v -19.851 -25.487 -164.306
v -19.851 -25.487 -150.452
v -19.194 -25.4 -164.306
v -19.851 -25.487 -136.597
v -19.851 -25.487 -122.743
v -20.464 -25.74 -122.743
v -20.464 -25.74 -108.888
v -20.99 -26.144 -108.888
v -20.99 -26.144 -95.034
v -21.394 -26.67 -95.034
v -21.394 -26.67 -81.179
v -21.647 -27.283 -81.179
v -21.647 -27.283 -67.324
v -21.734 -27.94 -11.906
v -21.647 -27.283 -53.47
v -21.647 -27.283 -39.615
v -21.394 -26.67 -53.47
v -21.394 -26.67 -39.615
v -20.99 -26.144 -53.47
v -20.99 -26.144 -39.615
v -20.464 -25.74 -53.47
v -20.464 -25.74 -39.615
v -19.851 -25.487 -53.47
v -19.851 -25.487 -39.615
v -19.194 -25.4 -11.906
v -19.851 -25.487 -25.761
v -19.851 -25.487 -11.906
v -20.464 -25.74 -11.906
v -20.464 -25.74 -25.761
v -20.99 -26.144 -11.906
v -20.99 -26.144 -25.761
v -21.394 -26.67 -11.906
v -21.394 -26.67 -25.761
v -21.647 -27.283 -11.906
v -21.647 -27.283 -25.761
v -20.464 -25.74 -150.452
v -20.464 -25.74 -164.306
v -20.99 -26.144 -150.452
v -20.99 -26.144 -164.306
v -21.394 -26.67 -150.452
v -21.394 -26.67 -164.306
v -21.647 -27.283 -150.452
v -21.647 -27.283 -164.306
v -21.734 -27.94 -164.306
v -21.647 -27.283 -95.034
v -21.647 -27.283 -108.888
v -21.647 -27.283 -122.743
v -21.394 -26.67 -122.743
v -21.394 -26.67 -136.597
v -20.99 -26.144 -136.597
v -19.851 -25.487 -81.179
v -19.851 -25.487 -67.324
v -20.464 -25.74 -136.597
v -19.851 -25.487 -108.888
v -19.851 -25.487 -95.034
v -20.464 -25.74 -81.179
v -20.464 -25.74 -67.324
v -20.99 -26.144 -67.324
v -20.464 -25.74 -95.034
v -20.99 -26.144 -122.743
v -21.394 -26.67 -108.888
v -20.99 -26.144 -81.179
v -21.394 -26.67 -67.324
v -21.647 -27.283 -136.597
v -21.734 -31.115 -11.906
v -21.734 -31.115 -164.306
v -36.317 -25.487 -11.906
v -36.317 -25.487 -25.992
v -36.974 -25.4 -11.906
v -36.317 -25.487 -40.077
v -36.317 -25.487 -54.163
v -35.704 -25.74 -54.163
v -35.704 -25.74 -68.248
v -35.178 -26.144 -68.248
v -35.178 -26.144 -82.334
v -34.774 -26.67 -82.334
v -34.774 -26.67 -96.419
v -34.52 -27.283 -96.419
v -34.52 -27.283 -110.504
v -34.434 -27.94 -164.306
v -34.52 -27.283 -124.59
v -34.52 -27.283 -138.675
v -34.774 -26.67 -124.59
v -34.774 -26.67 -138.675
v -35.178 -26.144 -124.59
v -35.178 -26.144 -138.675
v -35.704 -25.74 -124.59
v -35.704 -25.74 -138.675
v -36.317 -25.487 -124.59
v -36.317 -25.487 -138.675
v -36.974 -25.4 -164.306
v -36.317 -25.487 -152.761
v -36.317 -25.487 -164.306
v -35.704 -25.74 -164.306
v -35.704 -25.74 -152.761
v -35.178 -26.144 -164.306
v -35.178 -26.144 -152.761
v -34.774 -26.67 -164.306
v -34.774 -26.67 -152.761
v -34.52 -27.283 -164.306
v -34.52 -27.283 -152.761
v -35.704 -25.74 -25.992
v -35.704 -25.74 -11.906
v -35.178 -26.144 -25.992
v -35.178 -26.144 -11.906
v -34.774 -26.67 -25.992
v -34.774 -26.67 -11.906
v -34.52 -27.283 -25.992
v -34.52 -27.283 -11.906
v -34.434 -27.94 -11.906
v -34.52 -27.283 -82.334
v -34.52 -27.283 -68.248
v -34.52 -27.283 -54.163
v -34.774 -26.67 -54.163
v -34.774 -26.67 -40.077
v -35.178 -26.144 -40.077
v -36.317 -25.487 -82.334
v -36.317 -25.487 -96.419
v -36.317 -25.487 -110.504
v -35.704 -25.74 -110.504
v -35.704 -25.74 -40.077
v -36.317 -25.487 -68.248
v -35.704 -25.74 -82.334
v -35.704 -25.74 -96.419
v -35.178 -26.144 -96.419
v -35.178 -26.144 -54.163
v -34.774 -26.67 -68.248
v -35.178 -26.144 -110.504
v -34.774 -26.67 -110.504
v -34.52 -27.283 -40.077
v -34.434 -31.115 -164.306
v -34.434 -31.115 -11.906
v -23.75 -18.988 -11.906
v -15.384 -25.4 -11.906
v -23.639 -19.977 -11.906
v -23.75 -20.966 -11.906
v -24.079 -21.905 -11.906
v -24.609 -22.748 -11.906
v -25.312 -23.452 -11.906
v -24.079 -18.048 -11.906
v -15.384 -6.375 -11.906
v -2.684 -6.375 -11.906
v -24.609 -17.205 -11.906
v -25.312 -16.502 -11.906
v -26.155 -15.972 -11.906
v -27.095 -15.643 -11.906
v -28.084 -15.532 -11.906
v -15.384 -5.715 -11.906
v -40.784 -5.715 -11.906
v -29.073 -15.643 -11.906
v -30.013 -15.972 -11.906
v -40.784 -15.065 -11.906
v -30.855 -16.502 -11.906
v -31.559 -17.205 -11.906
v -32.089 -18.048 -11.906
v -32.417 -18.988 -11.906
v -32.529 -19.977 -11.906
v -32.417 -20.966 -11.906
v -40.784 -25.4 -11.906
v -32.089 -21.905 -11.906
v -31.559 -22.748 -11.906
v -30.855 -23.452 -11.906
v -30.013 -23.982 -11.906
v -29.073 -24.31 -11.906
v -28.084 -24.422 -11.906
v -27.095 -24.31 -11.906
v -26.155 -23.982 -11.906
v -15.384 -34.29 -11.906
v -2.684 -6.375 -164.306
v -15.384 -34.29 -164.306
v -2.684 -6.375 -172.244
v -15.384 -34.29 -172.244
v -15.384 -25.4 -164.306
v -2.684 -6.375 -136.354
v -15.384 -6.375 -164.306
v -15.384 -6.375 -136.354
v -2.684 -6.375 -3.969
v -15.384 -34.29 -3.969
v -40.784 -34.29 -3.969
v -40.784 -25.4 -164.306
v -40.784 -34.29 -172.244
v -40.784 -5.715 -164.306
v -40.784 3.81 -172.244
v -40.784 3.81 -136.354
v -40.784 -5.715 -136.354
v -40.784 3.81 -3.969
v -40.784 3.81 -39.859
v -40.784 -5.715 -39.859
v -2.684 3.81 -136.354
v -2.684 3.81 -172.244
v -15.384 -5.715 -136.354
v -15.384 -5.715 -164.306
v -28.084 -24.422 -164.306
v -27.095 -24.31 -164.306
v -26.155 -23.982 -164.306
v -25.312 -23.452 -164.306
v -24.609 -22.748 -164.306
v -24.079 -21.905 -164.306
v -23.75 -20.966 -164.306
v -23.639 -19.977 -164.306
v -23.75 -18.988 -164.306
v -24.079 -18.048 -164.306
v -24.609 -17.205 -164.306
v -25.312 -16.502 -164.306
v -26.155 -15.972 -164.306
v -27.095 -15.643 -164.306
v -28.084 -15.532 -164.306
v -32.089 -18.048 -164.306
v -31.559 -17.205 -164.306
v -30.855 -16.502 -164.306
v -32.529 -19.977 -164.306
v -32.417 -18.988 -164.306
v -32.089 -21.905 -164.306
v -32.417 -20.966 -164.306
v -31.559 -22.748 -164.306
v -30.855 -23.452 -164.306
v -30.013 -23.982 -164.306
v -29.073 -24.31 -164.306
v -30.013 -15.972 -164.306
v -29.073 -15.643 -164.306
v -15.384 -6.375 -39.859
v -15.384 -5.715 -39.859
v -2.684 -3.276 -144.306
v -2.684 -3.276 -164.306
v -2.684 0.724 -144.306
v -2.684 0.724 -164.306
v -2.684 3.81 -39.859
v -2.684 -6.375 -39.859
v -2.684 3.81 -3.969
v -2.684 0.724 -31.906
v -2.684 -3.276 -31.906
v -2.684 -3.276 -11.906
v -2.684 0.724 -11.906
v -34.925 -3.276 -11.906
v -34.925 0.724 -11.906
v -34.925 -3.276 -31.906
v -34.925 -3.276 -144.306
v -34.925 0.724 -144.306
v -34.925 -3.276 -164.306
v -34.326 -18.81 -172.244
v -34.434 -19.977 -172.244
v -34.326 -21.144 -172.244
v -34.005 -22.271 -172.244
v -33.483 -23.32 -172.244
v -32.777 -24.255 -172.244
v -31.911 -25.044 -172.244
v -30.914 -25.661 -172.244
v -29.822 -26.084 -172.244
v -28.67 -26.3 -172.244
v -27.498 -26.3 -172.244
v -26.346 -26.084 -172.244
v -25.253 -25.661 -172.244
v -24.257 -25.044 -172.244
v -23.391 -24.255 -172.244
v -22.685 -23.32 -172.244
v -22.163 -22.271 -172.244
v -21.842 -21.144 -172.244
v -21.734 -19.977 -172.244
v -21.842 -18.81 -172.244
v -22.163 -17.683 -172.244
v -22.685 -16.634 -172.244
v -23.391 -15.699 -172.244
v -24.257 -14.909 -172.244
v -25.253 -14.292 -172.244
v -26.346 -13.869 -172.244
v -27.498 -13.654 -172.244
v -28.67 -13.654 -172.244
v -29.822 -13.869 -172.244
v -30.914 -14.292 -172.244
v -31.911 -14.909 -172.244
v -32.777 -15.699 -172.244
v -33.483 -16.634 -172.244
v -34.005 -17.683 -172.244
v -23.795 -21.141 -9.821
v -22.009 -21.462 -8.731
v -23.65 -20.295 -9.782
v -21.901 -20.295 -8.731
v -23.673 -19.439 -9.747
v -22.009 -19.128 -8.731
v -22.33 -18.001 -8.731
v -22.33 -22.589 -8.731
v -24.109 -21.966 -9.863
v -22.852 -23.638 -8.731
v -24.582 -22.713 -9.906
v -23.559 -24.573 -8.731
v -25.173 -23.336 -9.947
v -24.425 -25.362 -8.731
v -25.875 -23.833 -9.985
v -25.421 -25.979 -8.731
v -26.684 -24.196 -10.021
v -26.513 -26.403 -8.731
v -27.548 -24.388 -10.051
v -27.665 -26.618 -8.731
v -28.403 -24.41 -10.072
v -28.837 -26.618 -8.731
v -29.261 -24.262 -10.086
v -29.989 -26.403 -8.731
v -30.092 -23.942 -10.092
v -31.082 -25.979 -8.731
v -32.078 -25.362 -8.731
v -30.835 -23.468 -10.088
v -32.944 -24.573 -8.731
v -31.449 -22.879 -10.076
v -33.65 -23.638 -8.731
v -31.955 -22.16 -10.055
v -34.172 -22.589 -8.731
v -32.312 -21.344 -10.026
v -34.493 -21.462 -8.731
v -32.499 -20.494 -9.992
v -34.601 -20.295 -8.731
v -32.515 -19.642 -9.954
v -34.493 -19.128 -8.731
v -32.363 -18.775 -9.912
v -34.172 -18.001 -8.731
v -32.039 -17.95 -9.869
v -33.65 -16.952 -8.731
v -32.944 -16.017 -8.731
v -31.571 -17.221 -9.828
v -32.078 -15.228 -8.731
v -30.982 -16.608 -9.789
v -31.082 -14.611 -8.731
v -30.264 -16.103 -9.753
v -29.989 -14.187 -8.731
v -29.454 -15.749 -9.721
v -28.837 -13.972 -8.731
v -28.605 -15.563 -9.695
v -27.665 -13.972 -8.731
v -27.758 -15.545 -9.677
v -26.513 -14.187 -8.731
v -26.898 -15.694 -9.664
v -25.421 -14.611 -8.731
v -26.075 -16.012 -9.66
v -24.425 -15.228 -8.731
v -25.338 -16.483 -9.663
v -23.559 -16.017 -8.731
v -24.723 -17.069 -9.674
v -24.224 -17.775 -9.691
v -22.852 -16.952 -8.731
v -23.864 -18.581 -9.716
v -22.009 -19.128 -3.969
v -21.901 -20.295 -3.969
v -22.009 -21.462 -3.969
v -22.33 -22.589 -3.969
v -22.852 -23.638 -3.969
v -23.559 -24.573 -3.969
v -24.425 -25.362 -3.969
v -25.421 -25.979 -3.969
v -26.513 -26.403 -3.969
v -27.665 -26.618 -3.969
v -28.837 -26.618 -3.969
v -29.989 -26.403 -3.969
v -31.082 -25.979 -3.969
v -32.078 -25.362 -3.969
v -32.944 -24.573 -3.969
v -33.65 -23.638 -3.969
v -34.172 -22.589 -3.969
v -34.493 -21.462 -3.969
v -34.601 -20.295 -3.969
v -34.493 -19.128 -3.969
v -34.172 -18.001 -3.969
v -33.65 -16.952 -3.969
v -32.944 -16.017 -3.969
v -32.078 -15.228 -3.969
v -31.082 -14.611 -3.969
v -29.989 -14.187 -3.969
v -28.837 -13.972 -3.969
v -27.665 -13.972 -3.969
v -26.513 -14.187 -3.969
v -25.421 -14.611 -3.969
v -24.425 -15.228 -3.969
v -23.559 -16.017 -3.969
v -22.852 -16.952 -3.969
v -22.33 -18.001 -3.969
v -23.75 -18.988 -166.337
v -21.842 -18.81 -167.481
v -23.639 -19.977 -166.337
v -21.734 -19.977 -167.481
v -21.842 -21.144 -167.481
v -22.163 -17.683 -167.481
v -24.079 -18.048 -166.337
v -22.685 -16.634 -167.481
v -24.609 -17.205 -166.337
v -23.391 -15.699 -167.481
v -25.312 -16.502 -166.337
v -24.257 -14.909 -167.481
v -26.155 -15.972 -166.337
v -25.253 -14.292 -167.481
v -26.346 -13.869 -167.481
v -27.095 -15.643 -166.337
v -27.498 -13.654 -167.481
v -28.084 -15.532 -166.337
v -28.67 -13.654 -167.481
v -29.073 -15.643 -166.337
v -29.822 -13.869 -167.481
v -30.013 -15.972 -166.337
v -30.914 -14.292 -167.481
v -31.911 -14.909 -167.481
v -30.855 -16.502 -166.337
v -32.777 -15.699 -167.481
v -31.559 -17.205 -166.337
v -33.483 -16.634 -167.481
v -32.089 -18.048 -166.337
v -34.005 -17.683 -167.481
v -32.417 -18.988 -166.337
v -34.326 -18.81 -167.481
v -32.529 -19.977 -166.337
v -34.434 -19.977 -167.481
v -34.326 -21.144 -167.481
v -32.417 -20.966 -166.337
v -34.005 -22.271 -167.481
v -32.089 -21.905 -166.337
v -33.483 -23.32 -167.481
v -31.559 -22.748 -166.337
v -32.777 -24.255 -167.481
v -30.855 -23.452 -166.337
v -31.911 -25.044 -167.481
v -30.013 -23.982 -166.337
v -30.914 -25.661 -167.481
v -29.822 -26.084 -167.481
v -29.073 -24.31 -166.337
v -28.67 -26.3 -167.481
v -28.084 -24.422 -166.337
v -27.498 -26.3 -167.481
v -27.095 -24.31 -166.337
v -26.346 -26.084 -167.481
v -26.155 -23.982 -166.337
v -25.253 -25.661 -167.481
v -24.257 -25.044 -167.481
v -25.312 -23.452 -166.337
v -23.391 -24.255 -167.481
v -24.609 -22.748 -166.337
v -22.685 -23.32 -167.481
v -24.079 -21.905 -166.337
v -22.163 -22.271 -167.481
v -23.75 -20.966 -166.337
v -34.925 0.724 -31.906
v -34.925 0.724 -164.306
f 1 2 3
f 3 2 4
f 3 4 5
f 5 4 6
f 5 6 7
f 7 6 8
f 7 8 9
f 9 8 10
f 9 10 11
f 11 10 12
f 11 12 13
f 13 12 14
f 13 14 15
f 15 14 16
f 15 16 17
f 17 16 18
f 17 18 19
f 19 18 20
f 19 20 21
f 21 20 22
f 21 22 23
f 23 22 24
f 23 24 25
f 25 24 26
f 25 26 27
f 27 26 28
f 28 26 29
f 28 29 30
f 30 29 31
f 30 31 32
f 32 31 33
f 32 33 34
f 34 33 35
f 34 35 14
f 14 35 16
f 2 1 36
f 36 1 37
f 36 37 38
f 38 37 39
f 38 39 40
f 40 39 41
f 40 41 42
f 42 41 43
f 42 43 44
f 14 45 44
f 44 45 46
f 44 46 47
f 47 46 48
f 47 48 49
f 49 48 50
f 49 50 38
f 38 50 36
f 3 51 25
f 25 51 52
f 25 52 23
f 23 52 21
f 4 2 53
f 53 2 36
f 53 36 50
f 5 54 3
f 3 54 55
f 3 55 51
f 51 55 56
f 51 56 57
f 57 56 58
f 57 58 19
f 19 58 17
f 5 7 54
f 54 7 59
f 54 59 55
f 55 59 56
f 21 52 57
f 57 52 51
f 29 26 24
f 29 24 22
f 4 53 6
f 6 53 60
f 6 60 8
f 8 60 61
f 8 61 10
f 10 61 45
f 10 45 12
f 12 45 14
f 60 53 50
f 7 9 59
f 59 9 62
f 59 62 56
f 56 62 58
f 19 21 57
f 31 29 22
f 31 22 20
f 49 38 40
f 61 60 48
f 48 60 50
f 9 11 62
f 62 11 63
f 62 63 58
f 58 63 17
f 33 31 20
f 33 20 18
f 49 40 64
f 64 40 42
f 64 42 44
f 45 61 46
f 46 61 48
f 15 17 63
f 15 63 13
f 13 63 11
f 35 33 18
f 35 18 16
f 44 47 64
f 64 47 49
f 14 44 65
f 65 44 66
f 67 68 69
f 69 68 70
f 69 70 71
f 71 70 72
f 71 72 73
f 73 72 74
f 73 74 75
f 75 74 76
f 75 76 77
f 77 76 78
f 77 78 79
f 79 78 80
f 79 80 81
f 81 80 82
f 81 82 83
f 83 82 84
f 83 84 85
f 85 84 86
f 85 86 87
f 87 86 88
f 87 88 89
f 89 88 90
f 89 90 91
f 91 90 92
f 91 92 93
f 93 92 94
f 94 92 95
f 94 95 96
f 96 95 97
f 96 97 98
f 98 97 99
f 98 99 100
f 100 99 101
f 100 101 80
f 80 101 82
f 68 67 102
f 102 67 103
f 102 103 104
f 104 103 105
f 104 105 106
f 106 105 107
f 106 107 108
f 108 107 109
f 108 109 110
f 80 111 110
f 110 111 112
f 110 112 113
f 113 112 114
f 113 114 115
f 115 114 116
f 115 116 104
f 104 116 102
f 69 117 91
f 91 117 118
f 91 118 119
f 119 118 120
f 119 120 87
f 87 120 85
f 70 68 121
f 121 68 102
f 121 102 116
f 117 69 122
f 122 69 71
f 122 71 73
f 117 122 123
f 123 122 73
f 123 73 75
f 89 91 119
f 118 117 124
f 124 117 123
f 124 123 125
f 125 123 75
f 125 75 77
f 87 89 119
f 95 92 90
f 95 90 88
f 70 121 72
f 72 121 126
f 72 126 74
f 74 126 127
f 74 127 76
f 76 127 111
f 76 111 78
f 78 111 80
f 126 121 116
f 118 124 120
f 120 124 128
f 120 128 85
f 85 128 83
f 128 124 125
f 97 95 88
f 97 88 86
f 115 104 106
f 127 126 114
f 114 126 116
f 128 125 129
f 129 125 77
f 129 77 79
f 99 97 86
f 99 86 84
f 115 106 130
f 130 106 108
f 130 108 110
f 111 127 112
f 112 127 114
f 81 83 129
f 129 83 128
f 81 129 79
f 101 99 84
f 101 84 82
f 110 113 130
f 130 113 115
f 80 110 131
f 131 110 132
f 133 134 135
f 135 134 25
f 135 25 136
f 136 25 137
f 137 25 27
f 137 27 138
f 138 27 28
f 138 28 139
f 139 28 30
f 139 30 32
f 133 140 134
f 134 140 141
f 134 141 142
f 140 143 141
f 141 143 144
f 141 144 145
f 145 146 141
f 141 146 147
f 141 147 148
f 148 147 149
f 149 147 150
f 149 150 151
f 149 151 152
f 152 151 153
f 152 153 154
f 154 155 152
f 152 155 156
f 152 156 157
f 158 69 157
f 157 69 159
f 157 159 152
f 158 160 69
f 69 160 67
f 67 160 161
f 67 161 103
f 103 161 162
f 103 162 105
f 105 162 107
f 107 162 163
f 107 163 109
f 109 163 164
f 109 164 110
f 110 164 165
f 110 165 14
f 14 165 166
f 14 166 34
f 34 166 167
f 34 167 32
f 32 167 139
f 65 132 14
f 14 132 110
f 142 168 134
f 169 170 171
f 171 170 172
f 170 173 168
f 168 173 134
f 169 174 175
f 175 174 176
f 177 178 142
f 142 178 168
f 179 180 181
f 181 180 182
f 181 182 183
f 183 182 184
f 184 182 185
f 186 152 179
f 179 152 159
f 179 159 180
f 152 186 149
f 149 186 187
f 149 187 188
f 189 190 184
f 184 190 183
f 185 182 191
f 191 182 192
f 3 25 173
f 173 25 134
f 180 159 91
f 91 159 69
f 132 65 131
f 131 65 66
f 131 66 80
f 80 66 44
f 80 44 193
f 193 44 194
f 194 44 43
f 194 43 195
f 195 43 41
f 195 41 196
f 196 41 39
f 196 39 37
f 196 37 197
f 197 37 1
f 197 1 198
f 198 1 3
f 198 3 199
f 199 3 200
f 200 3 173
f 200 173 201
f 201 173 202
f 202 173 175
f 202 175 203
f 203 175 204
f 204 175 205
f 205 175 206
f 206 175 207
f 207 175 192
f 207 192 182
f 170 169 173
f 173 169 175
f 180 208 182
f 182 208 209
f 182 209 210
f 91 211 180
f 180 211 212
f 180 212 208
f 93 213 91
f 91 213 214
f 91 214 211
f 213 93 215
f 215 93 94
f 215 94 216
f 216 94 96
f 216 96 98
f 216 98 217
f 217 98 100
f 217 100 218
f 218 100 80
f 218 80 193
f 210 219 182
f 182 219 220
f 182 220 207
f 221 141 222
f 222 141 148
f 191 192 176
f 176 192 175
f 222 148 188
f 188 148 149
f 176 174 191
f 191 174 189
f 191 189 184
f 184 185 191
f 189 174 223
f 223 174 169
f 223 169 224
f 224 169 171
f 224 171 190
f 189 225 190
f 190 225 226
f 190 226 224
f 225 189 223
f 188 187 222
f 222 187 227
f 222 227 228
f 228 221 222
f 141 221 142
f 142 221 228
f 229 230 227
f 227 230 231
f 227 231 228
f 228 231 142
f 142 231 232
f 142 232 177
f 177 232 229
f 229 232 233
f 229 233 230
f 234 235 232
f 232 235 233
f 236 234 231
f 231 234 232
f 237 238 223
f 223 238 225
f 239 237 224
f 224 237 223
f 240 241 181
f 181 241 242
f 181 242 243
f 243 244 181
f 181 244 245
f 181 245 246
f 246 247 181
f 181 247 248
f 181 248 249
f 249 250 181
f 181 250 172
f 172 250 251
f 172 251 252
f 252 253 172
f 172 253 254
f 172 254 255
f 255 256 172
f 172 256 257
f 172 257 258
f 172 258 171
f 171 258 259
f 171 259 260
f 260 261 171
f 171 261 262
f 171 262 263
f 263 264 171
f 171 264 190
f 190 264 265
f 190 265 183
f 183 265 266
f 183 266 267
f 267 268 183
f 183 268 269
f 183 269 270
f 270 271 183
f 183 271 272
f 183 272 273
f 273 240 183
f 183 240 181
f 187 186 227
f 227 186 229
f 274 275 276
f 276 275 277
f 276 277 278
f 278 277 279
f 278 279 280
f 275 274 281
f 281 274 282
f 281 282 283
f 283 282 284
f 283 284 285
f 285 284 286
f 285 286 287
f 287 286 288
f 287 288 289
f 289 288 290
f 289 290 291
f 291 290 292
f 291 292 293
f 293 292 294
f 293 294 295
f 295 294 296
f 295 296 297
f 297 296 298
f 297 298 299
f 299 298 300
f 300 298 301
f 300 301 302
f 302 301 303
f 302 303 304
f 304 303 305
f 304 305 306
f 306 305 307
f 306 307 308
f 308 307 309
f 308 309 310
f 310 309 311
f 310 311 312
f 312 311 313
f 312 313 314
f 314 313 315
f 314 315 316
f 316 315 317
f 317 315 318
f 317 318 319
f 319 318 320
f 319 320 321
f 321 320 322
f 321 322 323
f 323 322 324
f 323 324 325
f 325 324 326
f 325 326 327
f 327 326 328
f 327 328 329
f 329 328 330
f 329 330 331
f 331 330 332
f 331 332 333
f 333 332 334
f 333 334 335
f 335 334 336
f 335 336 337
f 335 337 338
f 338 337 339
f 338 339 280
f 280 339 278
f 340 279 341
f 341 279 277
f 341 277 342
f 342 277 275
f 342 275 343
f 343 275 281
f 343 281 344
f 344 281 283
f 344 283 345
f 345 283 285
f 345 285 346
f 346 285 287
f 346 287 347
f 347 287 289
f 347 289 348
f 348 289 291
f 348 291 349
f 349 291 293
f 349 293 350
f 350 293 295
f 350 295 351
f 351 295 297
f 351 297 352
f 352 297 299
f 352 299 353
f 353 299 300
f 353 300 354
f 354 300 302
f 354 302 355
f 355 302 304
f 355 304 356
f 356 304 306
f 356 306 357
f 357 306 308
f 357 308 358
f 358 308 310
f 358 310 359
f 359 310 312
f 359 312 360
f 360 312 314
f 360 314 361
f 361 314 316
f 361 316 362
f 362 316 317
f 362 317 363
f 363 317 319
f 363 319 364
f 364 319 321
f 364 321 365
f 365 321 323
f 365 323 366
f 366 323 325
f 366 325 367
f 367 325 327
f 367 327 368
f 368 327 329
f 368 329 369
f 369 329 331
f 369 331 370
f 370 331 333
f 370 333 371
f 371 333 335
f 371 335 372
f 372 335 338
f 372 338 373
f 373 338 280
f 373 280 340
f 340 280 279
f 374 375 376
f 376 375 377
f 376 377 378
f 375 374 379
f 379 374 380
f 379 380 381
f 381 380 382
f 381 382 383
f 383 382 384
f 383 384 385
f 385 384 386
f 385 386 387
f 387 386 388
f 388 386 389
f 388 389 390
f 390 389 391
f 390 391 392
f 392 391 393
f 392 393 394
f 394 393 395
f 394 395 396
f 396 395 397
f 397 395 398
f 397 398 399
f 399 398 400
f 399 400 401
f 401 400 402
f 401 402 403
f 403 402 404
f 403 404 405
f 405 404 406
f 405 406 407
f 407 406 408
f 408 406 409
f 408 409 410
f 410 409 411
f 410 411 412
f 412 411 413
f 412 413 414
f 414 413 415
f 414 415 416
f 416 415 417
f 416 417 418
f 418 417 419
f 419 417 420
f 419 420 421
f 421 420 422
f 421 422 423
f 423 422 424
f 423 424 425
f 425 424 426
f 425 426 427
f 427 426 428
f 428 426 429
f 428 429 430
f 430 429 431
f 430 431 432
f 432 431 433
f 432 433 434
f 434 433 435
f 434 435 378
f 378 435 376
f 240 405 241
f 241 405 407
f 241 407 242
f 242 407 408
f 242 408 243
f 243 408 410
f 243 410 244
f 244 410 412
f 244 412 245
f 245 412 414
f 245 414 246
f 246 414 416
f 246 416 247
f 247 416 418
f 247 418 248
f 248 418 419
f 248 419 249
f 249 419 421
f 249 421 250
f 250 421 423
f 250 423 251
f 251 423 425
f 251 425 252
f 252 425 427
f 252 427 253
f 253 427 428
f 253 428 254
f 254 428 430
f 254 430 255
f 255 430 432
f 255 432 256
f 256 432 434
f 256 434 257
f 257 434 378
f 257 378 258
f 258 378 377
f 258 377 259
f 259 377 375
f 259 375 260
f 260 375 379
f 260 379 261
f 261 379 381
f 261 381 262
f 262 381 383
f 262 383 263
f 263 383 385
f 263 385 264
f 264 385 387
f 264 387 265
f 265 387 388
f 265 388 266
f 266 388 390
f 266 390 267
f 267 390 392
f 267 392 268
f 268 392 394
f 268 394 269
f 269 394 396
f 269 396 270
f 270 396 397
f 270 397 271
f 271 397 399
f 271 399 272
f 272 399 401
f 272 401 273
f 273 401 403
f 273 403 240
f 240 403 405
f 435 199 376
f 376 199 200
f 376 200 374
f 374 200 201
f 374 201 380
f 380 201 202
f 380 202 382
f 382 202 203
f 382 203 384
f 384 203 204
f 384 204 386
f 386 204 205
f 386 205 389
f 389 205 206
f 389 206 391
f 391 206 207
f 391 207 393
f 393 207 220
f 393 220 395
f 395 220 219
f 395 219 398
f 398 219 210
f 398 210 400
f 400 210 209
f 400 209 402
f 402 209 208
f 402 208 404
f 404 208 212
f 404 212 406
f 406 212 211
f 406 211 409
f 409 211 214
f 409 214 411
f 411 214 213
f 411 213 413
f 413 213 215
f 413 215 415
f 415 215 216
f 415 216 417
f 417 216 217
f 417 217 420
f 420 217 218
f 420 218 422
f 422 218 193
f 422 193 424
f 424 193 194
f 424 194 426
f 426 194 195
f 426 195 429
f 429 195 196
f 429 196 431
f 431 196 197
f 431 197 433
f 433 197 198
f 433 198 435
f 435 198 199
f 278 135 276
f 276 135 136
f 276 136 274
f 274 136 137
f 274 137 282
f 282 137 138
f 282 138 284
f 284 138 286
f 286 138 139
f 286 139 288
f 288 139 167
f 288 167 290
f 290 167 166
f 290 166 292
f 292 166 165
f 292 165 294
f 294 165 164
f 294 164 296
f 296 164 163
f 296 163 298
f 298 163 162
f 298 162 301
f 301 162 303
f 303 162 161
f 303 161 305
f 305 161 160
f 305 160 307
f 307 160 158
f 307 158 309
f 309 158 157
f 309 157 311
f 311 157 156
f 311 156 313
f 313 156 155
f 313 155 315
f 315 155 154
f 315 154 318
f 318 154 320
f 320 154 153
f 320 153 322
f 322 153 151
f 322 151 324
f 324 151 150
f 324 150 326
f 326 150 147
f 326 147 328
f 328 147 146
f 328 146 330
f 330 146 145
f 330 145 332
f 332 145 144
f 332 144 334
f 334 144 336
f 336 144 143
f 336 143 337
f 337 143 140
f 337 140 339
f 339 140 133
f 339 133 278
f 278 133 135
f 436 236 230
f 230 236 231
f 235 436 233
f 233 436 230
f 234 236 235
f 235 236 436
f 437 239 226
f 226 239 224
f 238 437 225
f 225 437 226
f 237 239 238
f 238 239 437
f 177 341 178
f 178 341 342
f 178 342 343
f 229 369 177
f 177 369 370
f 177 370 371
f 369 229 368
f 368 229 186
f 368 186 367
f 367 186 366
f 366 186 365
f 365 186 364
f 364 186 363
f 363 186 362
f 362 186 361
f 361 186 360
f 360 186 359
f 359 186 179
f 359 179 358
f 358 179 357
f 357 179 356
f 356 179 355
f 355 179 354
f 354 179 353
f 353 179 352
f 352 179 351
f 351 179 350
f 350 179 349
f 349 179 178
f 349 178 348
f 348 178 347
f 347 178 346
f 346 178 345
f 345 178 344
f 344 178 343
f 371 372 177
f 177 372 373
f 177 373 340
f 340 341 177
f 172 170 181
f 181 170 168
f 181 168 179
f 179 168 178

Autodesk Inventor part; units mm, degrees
ref_plane "YZ Plane" through (0, 0, 0) normal (1, 0, 0) x (0, 1, 0)
ref_plane "XZ Plane" through (0, 0, 0) normal (0, 1, 0) x (-1, 0, 0)
ref_plane "XY Plane" through (0, 0, 0) normal (0, 0, 1) x (1, 0, 0)
sketch "Sketch1" plane through (0, 0, 0) normal (0, 1, 0) x (-1, 0, 0)
  line L0 (41.275, -164.3062) -> (9.525, -164.3062)
  line L1 (9.525, -164.3062) -> (9.525, -11.9062)
  line L2 (9.525, -11.9062) -> (41.275, -11.9062)
  line L3 (41.275, -11.9062) -> (41.275, -164.3062)
  line L4 (41.275, -164.3062) -> (9.525, -164.3062)
  line L5 (9.525, -164.3062) -> (9.525, -146.7428)
  line L6 (9.525, -146.7428) -> (41.275, -146.7428)
  line L7 (41.275, -146.7428) -> (41.275, -164.3062)
  point P0 (0, 0)
  dimension "d37" = 31.75
  dimension "d50" = 152.4
sketch "Sketch2" plane through (0, 0, 0) normal (1, 0, 0) x (0, 1, 0)
  point P0 (0, 0)
extrude "Extrusion1" add sketch "Sketch1" along normal mid plane 7.62
sketch "Sketch3" plane through (0, 3.81, 0) normal (0, 1, 0) x (1, 0, 0)
  point P0 (0, 0)
sketch "Sketch4" plane through (0, 3.81, 0) normal (0, 1, 0) x (1, 0, 0)
  line L0 (-47.625, 3.9687) -> (-47.625, 172.2437)
  line L1 (-47.625, 172.2437) -> (-3.175, 172.2437)
  line L2 (-3.175, 172.2437) -> (-3.175, 3.9688)
  line L3 (-41.275, 164.3062) -> (-9.525, 164.3062) projected
  line L4 (-41.275, 11.9062) -> (-41.275, 164.3062) projected
  line L5 (-9.525, 164.3062) -> (-41.275, 164.3062) projected
  line L6 (-41.275, 11.9062) -> (-9.525, 11.9062) projected
  line L7 (-41.275, 164.3062) -> (-9.525, 164.3062)
  line L8 (-9.525, 164.3062) -> (-9.525, 11.9062)
  line L9 (-9.525, 11.9062) -> (-41.275, 11.9062)
  line L10 (-41.275, 11.9062) -> (-41.275, 164.3062)
  line L11 (-47.625, 3.9687) -> (-3.175, 3.9688)
  dimension "d38" = 7.9375
  dimension "d40" = 7.9375
  dimension "d41" = 6.35
  dimension "d42" = 6.35
extrude "Extrusion2" add sketch "Sketch4" against normal blind 38.1
fillet "Fillet1" radius 3.175 3 edges at (-47.625, -34.29, -88.1062) (-47.625, -15.24, -3.9687) (-47.625, -15.24, -172.2437)
sketch "Sketch6" plane through (-3.175, 3.81, -3.9688) normal (1, 0, 0) x (0, 0, -1)
  line L0 (140.3375, -7.0861) -> (160.3375, -7.0861)
  line L1 (160.3375, -7.0861) -> (160.3375, -3.0861)
  line L2 (160.3375, -3.0861) -> (140.3375, -3.0861)
  line L3 (140.3375, -3.0861) -> (140.3375, -7.0861)
  line L4 (27.3343, -7.0861) -> (7.3343, -7.0861)
  line L5 (7.3343, -7.0861) -> (7.3343, -3.0861)
  line L6 (7.3343, -3.0861) -> (27.3343, -3.0861)
  line L7 (27.3343, -3.0861) -> (27.3343, -7.0861)
  line L8 (85.181, -7.0861) -> (65.181, -7.0861)
  line L9 (65.181, -7.0861) -> (65.181, -3.0861)
  line L10 (65.181, -3.0861) -> (85.181, -3.0861)
  line L11 (85.181, -3.0861) -> (85.181, -7.0861)
  line L12 (0, 0) -> (168.275, 0) projected
  point P0 (-3.9688, -3.81)
  point P1 (160.3375, -38.1)
  dimension "d20" = 4
  dimension "d21" = 20
  dimension "d22" = 0
  dimension "d23" = 3.0861
  dimension "d24" = 3.0861
extrude "Extrusion3" cut sketch "Sketch6" against normal blind 31.75 contours L3 L2 L1 L0
sketch "Sketch7" plane through (-3.175, 3.81, -3.9688) normal (1, 0, 0) x (0, 0, -1)
  line L0 (27.9375, -7.0861) -> (7.9375, -7.0861)
  line L1 (7.9375, -7.0861) -> (7.9375, -3.0861)
  line L2 (7.9375, -3.0861) -> (27.9375, -3.0861)
  line L3 (27.9375, -3.0861) -> (27.9375, -7.0861)
  line L4 (160.3375, -7.0861) -> (140.3375, -7.0861) projected
  line L5 (140.3375, -7.0861) -> (140.3375, -3.0861) projected
  line L6 (0, 0) -> (168.275, 0) projected
  line L7 (140.3375, -3.0861) -> (160.3375, -3.0861) projected
  point P0 (-3.9688, -3.81)
  point P1 (7.9375, -38.1)
  dimension "d28" = 0
  dimension "d31" = 3.0861
extrude "Extrusion4" cut sketch "Sketch7" against normal blind 31.75
sketch "Sketch8" plane through (-3.175, 3.81, -3.9688) normal (1, 0, 0) x (0, 0, -1)
  line L0 (94.1324, -7.0861) -> (74.1324, -7.0861)
  line L1 (74.1324, -7.0861) -> (74.1324, -3.0861)
  line L2 (74.1324, -3.0861) -> (94.1324, -3.0861)
  line L3 (94.1324, -3.0861) -> (94.1324, -7.0861)
  line L4 (140.3375, -7.0861) -> (140.3375, -3.0861) projected
  line L5 (140.3375, -3.0861) -> (160.3375, -3.0861) projected
  line L6 (0, 0) -> (168.275, 0) projected
  line L7 (168.275, 0) -> (168.275, -38.1) projected
  line L8 (0, 0) -> (0, -38.1) projected
  point P0 (-3.9688, -3.81)
  point P1 (0, -38.1)
  dimension "d32" = 3.0861
  dimension "d33" = 74.1426
extrude "Extrusion5" cut sketch "Sketch8" against normal blind 31.75
sketch "Sketch10" plane through (-3.175, -34.29, -172.2437) normal (0, 0, -1) x (-1, 0, 0)
  point P0 (-3.175, 34.29)
  point P1 (24.9089, 14.3132)
hole "Hole3" at (-28.0839, -19.9768, -172.2437) direction (0, 0, 1) diameter 8.89 end through all
sketch "Sketch11" plane through (-3.175, -34.29, -172.2437) normal (0, 0, -1) x (-1, 0, 0)
  circle A0 centre (24.9089, 14.3132) radius 4.445 projected
  point P0 (-3.175, 34.29)
hole "Hole4" at (-28.0839, -19.9768, -172.2437) direction (0, 0, 1) diameter 12.7 depth 4.7625 tip angle 118
sketch "Sketch12" plane through (-3.175, -34.29, -3.9688) normal (0, 0, 1) x (1, 0, 0)
  point P0 (3.175, 34.29)
  point P1 (-25.0763, 13.995)
hole "Hole5" at (-28.2513, -20.295, -3.9688) direction (0, 0, -1) diameter 12.7 depth 4.7625 tip angle 118
sketch "Sketch13" plane through (-47.625, 3.81, -169.0687) normal (-1, 0, 0) x (0, 0, 1)
  line L0 (74.93, -14.0718) -> (86.995, -14.0718)
  line L1 (86.995, -14.0718) -> (86.995, -8.3898)
  line L2 (86.995, -8.3898) -> (74.93, -8.3898)
  line L3 (74.93, -8.3898) -> (74.93, -14.0718)
  line L4 (161.925, 0) -> (161.925, -34.925) projected
  line L5 (0, -34.925) -> (0, 0) projected
  point P0 (169.0687, -3.81)
  dimension "d72" = 74.93
  dimension "d73" = 74.93
extrude "Extrusion6" add sketch "Sketch13" along normal blind 12.7
fillet "Fillet2" radius 1.27 1 edges at (-60.325, -10.2618, -88.1062)
fillet "Fillet3" radius 1.27 9 edges at (-60.325, -4.5798, -88.1062) (-59.953, -9.8898, -94.1387) (-60.325, -6.7858, -94.1387) (-53.34, -10.2618, -94.1387) (-53.975, -4.5798, -94.1387) (-59.953, -9.8898, -82.0737) (-60.325, -6.7858, -82.0737) (-53.34, -10.2618, -82.0737) (-53.975, -4.5798, -82.0737)
sketch "Sketch14" plane through (-47.625, -10.2618, -92.8687) normal (0, -1, 0) x (1, 0, 0)
  point P0 (47.625, 92.8687)
  point P1 (-5.4964, 5.0244)
hole "Hole6" at (-53.1214, -10.2618, -87.8444) direction (0, 1, 0) diameter 6.35 end through all
sketch "Sketch15" plane through (0, -34.29, 0) normal (0, -1, 0) x (1, 0, 0)
  line L0 (-3.175, -164.3062) -> (-34.925, -164.3062) projected
  line L1 (-3.175, -172.2437) -> (-3.175, -3.9688) projected
  line L2 (-9.6565, -164.3062) -> (-3.175, -164.3062)
  line L3 (-3.175, -164.3062) -> (-3.175, -12.0649)
  line L4 (-3.175, -12.0649) -> (-9.6565, -12.0649)
  line L5 (-9.6565, -12.0649) -> (-9.6565, -164.3062)
  point P0 (0, 0)
extrude "Extrusion7" cut sketch "Sketch15" against normal blind 21.59
sketch "Sketch16" plane through (0, -34.29, 0) normal (0, -1, 0) x (1, 0, 0)
  line L0 (-41.275, -11.9062) -> (-41.275, -164.3062) projected
  line L1 (-47.625, -169.0687) -> (-47.625, -7.1438) projected
  line L2 (-41.275, -164.3062) -> (-47.625, -164.3062)
  line L3 (-47.625, -164.3062) -> (-47.625, -11.6343)
  line L4 (-47.625, -11.6343) -> (-41.275, -11.6343)
  line L5 (-41.275, -11.6343) -> (-41.275, -164.3062)
  point P0 (0, 0)
extrude "Extrusion8" cut sketch "Sketch16" against normal blind 21.59
fillet "Fillet4" radius 1.27 4 edges at (-3.175, -34.29, -8.0168) (-3.175, -15.24, -3.9688) (-3.175, -34.29, -168.275) (-3.175, -15.24, -172.2437)
sketch "Sketch17" plane through (-44.45, -34.29, -3.9687) normal (0, 0, 1) x (1, 0, 0)
  line L0 (3.6661, -9.4735) -> (29.0661, -9.4735)
  line L1 (29.0661, -9.4735) -> (29.0661, 38.1)
  line L2 (29.0661, 38.1) -> (3.6661, 38.1)
  line L3 (3.6661, 38.1) -> (3.6661, -9.4735)
  circle A0 centre (16.3661, 14.3132) radius 4.445 projected
  line L4 (3.6661, -9.4735) -> (29.0661, 38.1) construction
  line L5 (29.0661, -9.4735) -> (3.6661, 38.1) construction
  line L6 (3.6661, 38.1) -> (-19.5186, 38.1)
  line L7 (-19.5186, 38.1) -> (-19.5186, -9.4735)
  line L8 (-19.5186, -9.4735) -> (3.6661, -9.4735)
  line L9 (3.6661, -9.4735) -> (3.6661, 38.1)
  line L10 (29.0661, 38.1) -> (55.1329, 38.1)
  line L11 (55.1329, 38.1) -> (55.1329, -9.4735)
  line L12 (55.1329, -9.4735) -> (29.0661, -9.4735)
  line L13 (29.0661, -9.4735) -> (29.0661, 38.1)
  point P0 (44.45, 34.29)
  point P1 (29.0661, -9.4735)
  point P2 (3.6661, -9.4735)
  dimension "d90" = 25.4
extrude "Extrusion9" cut sketch "Sketch17" against normal blind 169.8625 contours L8 L7 L6 L3 | L1 L10 L11 L12
sketch "Sketch18" plane through (-15.3839, 3.81, -172.2437) normal (0, 0, -1) x (-1, 0, 0)
  circle A0 centre (12.7, -23.7868) radius 4.445 projected
  circle A1 centre (12.7, -23.7868) radius 21.7714
  point P0 (-15.3839, -3.81)
  dimension "d93" = 43.5429
sketch "Sketch19" plane through (-34.925, -3.2761, -144.3062) normal (0, 0, -1) x (-1, 0, 0)
  point P0 (-34.925, 3.2761)
sketch "Sketch20" plane through (0, -3.81, 0) normal (0, -1, 0) x (1, 0, 0)
  line L0 (-40.7839, -164.3062) -> (-15.3839, -164.3062) projected
  line L1 (-40.7839, -11.9062) -> (-15.3839, -11.9062) projected
  line L2 (-40.7839, -164.3062) -> (-15.3839, -164.3062)
  line L3 (-15.3839, -164.3062) -> (-15.3839, -11.9062)
  line L4 (-15.3839, -11.9062) -> (-40.7839, -11.9062)
  line L5 (-40.7839, -11.9062) -> (-40.7839, -164.3062)
  point P0 (0, 0)
extrude "Extrusion10" add sketch "Sketch20" along normal blind 3
sketch "Sketch21" plane through (0, -6.81, 0) normal (0, -1, 0) x (1, 0, 0)
  line L0 (-40.7839, -164.3062) -> (-40.7839, -172.2437) projected
  line L1 (-40.7839, -164.3062) -> (-34.4339, -164.3062)
  line L2 (-34.4339, -164.3062) -> (-34.4339, -11.9062)
  line L3 (-34.4339, -11.9062) -> (-40.7839, -11.9062)
  line L4 (-40.7839, -11.9062) -> (-40.7839, -164.3062)
  line L5 (-15.3839, -164.3062) -> (-21.7339, -164.3062)
  line L6 (-21.7339, -164.3062) -> (-21.7339, -11.9062)
  line L7 (-21.7339, -11.9062) -> (-15.3839, -11.9062)
  line L8 (-15.3839, -11.9062) -> (-15.3839, -164.3062)
  point P0 (0, 0)
  dimension "d96" = 6.35
  dimension "d97" = 6.35
extrude "Extrusion11" add sketch "Sketch21" along normal blind 8.255
sketch "Sketch22" plane through (-15.3839, -34.29, -3.9688) normal (1, 0, 0) x (0, 0, -1)
  point P0 (-3.9688, 34.29)
sketch "Sketch23" plane through (-15.3839, -34.29, -3.9688) normal (1, 0, 0) x (0, 0, -1)
  line L0 (168.275, 38.1) -> (0, 38.1) projected
  line L1 (0, 38.1) -> (35.8902, 38.1)
  line L2 (35.8902, 38.1) -> (35.8902, 27.9146)
  line L3 (35.8902, 27.9146) -> (0, 27.9146)
  line L4 (0, 27.9146) -> (0, 38.1)
  line L5 (168.275, 38.1) -> (132.3848, 38.1)
  line L6 (132.3848, 38.1) -> (132.3848, 27.9146)
  line L7 (132.3848, 27.9146) -> (168.275, 27.9146)
  line L8 (168.275, 27.9146) -> (168.275, 38.1)
  line L9 (7.9375, 35.0139) -> (7.9375, 31.0139) projected
  line L10 (7.9375, 31.0139) -> (27.9375, 31.0139) projected
  line L11 (7.9375, 35.0139) -> (27.9375, 35.0139)
  line L12 (27.9375, 35.0139) -> (27.9375, 31.0139)
  line L13 (27.9375, 31.0139) -> (7.9375, 31.0139)
  line L14 (7.9375, 31.0139) -> (7.9375, 35.0139)
  line L15 (160.3375, 35.0139) -> (140.3375, 35.0139) projected
  line L16 (140.3375, 31.0139) -> (160.3375, 31.0139) projected
  line L17 (140.3375, 35.0139) -> (160.3375, 35.0139)
  line L18 (160.3375, 35.0139) -> (160.3375, 31.0139)
  line L19 (160.3375, 31.0139) -> (140.3375, 31.0139)
  line L20 (140.3375, 31.0139) -> (140.3375, 35.0139)
  point P0 (-3.9688, 34.29)
  dimension "d100" = 35.8902
  dimension "d101" = 10.1854
  dimension "d102" = 35.8902
  dimension "d103" = 10.1854
extrude "Extrusion12" add sketch "Sketch23" along normal blind 12.7
sketch "Sketch24" plane through (0, -34.29, 0) normal (0, -1, 0) x (1, 0, 0)
  line L0 (-15.3839, -164.3062) -> (-21.7339, -164.3062) projected
  line L1 (-40.7839, -172.2437) -> (-40.7839, -3.9687) projected
  line L2 (-15.3839, -164.3062) -> (-40.7839, -164.3062)
  line L3 (-40.7839, -164.3062) -> (-40.7839, -11.9062)
  line L4 (-40.7839, -11.9062) -> (-15.3839, -11.9062)
  line L5 (-15.3839, -11.9062) -> (-15.3839, -164.3062)
  point P0 (0, 0)
extrude "Extrusion13" cut sketch "Sketch24" against normal blind 28.575
sketch "Sketch25" plane through (-40.7839, -34.29, -164.3062) normal (0, 0, 1) x (1, 0, 0)
  line L0 (25.4, 0) -> (25.4, 27.9146) projected
  line L1 (0, 0) -> (0, 38.1) projected
  line L2 (25.4, 0) -> (0, 0)
  line L3 (0, 0) -> (0, 3.175)
  line L4 (0, 3.175) -> (25.4, 3.175)
  line L5 (25.4, 3.175) -> (25.4, 0)
  line L6 (25.4, 0) -> (21.59, 0)
  line L7 (21.59, 0) -> (21.59, 8.89)
  line L8 (21.59, 8.89) -> (25.4, 8.89)
  line L9 (25.4, 8.89) -> (25.4, 0)
  line L10 (0, 0) -> (3.81, 0)
  line L11 (3.81, 0) -> (3.81, 8.89)
  line L12 (3.81, 8.89) -> (0, 8.89)
  line L13 (0, 8.89) -> (0, 0)
  point P0 (40.7839, 34.29)
  point P1 (25.4, 8.89)
  point P2 (21.59, 3.175)
  point P3 (3.81, 3.175)
  point P4 (0, 8.89)
  dimension "d108" = 3.175
  dimension "d109" = 3.81
  dimension "d110" = 8.89
  dimension "d111" = 3.81
  dimension "d112" = 8.89
extrude "Extrusion14" add sketch "Sketch25" along normal blind 152.4
sketch "Sketch26" plane through (0, 3.81, 0) normal (0, 1, 0) x (1, 0, 0)
  line L0 (-2.6839, 3.9687) -> (-2.6839, 39.8589) projected
  line L1 (-40.7839, 164.3062) -> (-40.7839, 11.9062) projected
  line L2 (-2.6839, 39.8589) -> (-40.7839, 39.8589)
  line L3 (-40.7839, 39.8589) -> (-40.7839, 136.3535)
  line L4 (-40.7839, 136.3535) -> (-2.6839, 136.3535)
  line L5 (-2.6839, 136.3535) -> (-2.6839, 39.8589)
  point P0 (0, 0)
  dimension "d115" = 96.4946
extrude "Extrusion15" cut sketch "Sketch26" against normal blind 11.1125
sketch "Sketch27" plane through (-40.7839, -34.29, -3.9687) normal (-1, 0, 0) x (0, 0, 1)
  point P0 (3.9688, 34.29)
sketch "Sketch28" plane through (-40.7839, -34.29, -3.9687) normal (0, 0, 1) x (1, 0, 0)
  line L0 (25.4, 27.9146) -> (38.1, 27.9146) projected
  line L1 (25.4, 27.9146) -> (25.4, 0) projected
  line L2 (38.1, 27.9146) -> (25.4, 0)
  line L3 (25.4, 27.9146) -> (25.4, 28.575) projected
  line L4 (25.4, 0) -> (25.4, 27.9146)
  line L5 (38.1, 38.1) -> (38.1, 27.9146) projected
  line L6 (25.4, 27.9146) -> (38.1, 27.9146)
  point P0 (40.7839, 34.29)
extrude "Extrusion16" add sketch "Sketch28" against normal blind 7.9375
sketch "Sketch29" plane through (-40.7839, -5.715, -164.3062) normal (0, 0, 1) x (1, 0, 0)
  line L0 (25.4, -28.575) -> (0, -28.575) projected
  line L1 (25.4, -0.6604) -> (25.4, -28.575) projected
  line L2 (25.4, -28.575) -> (25.4, -0.6604)
  line L3 (38.1, -0.6604) -> (25.4, -0.6604) projected
  line L4 (25.4, -0.6604) -> (38.1, -0.6604)
  line L5 (38.1, -0.6604) -> (25.4, -28.575) projected
  line L6 (38.1, -0.6604) -> (25.4, -28.575)
  point P0 (40.7839, 5.715)
extrude "Extrusion17" add sketch "Sketch29" against normal blind 7.9375
sketch "Sketch30" plane through (-40.7839, -25.4, -164.3062) normal (0, 1, 0) x (1, 0, 0)
  line L0 (3.81, 0) -> (3.81, -152.4) projected
  line L1 (25.4, 0) -> (0, 0) projected
  line L2 (3.81, -152.4) -> (6.35, -152.4)
  line L3 (6.35, -152.4) -> (6.35, 0)
  line L4 (6.35, 0) -> (3.81, 0)
  line L5 (3.81, 0) -> (3.81, -152.4)
  line L6 (21.59, 0) -> (21.59, -152.4) projected
  line L7 (21.59, -152.4) -> (19.05, -152.4)
  line L8 (19.05, -152.4) -> (19.05, 0)
  line L9 (19.05, 0) -> (21.59, 0)
  line L10 (21.59, 0) -> (21.59, -152.4)
  point P0 (40.7839, -164.3062)
  dimension "d122" = 2.54
  dimension "d123" = 2.54
extrude "Extrusion18" add sketch "Sketch30" against normal blind 7.9375
fillet "Fillet5" radius 2.54 2 edges at (-34.4339, -25.4, -88.1062) (-21.7339, -25.4, -88.1062)
sketch "Sketch31" plane through (-40.7839, -25.4, -11.9062) normal (0, 1, 0) x (1, 0, 0)
  circle A0 centre (-3.2262, 76.2) radius 2.921
  line L0 (-6.4525, 80.645) -> (-6.4525, 71.755)
  line L1 (-6.4525, 71.755) -> (0, 71.755)
  line L2 (0, 71.755) -> (0, 80.645)
  line L3 (0, 80.645) -> (-6.4525, 80.645)
  line L4 (-6.4525, 80.645) -> (0, 71.755) construction
  line L5 (-6.4525, 71.755) -> (0, 80.645) construction
  point P0 (40.7839, -11.9062)
  dimension "d127" = 5.842
  dimension "d128" = 8.89
extrude "Extrusion19" add sketch "Sketch31" against normal blind 4.7625
sketch "Sketch32" plane through (-40.7839, -34.29, -172.2437) normal (0, 0, -1) x (-1, 0, 0)
  point P0 (-40.7839, 34.29)
sketch "Sketch33" plane through (0, -34.29, 0) normal (0, -1, 0) x (1, 0, 0)
  line L0 (-40.7839, -3.9687) -> (-40.7839, -172.2437) projected
  line L1 (-55.97, -106.4068) -> (-40.7839, -106.4068)
  line L2 (-40.7839, -106.4068) -> (-40.7839, -77.2514)
  line L3 (-40.7839, -77.2514) -> (-55.97, -77.2514)
  line L4 (-55.97, -77.2514) -> (-55.97, -106.4068)
  point P0 (0, 0)
extrude "Extrusion20" cut sketch "Sketch33" against normal blind 25.4
properties part number "_3DPrint"
